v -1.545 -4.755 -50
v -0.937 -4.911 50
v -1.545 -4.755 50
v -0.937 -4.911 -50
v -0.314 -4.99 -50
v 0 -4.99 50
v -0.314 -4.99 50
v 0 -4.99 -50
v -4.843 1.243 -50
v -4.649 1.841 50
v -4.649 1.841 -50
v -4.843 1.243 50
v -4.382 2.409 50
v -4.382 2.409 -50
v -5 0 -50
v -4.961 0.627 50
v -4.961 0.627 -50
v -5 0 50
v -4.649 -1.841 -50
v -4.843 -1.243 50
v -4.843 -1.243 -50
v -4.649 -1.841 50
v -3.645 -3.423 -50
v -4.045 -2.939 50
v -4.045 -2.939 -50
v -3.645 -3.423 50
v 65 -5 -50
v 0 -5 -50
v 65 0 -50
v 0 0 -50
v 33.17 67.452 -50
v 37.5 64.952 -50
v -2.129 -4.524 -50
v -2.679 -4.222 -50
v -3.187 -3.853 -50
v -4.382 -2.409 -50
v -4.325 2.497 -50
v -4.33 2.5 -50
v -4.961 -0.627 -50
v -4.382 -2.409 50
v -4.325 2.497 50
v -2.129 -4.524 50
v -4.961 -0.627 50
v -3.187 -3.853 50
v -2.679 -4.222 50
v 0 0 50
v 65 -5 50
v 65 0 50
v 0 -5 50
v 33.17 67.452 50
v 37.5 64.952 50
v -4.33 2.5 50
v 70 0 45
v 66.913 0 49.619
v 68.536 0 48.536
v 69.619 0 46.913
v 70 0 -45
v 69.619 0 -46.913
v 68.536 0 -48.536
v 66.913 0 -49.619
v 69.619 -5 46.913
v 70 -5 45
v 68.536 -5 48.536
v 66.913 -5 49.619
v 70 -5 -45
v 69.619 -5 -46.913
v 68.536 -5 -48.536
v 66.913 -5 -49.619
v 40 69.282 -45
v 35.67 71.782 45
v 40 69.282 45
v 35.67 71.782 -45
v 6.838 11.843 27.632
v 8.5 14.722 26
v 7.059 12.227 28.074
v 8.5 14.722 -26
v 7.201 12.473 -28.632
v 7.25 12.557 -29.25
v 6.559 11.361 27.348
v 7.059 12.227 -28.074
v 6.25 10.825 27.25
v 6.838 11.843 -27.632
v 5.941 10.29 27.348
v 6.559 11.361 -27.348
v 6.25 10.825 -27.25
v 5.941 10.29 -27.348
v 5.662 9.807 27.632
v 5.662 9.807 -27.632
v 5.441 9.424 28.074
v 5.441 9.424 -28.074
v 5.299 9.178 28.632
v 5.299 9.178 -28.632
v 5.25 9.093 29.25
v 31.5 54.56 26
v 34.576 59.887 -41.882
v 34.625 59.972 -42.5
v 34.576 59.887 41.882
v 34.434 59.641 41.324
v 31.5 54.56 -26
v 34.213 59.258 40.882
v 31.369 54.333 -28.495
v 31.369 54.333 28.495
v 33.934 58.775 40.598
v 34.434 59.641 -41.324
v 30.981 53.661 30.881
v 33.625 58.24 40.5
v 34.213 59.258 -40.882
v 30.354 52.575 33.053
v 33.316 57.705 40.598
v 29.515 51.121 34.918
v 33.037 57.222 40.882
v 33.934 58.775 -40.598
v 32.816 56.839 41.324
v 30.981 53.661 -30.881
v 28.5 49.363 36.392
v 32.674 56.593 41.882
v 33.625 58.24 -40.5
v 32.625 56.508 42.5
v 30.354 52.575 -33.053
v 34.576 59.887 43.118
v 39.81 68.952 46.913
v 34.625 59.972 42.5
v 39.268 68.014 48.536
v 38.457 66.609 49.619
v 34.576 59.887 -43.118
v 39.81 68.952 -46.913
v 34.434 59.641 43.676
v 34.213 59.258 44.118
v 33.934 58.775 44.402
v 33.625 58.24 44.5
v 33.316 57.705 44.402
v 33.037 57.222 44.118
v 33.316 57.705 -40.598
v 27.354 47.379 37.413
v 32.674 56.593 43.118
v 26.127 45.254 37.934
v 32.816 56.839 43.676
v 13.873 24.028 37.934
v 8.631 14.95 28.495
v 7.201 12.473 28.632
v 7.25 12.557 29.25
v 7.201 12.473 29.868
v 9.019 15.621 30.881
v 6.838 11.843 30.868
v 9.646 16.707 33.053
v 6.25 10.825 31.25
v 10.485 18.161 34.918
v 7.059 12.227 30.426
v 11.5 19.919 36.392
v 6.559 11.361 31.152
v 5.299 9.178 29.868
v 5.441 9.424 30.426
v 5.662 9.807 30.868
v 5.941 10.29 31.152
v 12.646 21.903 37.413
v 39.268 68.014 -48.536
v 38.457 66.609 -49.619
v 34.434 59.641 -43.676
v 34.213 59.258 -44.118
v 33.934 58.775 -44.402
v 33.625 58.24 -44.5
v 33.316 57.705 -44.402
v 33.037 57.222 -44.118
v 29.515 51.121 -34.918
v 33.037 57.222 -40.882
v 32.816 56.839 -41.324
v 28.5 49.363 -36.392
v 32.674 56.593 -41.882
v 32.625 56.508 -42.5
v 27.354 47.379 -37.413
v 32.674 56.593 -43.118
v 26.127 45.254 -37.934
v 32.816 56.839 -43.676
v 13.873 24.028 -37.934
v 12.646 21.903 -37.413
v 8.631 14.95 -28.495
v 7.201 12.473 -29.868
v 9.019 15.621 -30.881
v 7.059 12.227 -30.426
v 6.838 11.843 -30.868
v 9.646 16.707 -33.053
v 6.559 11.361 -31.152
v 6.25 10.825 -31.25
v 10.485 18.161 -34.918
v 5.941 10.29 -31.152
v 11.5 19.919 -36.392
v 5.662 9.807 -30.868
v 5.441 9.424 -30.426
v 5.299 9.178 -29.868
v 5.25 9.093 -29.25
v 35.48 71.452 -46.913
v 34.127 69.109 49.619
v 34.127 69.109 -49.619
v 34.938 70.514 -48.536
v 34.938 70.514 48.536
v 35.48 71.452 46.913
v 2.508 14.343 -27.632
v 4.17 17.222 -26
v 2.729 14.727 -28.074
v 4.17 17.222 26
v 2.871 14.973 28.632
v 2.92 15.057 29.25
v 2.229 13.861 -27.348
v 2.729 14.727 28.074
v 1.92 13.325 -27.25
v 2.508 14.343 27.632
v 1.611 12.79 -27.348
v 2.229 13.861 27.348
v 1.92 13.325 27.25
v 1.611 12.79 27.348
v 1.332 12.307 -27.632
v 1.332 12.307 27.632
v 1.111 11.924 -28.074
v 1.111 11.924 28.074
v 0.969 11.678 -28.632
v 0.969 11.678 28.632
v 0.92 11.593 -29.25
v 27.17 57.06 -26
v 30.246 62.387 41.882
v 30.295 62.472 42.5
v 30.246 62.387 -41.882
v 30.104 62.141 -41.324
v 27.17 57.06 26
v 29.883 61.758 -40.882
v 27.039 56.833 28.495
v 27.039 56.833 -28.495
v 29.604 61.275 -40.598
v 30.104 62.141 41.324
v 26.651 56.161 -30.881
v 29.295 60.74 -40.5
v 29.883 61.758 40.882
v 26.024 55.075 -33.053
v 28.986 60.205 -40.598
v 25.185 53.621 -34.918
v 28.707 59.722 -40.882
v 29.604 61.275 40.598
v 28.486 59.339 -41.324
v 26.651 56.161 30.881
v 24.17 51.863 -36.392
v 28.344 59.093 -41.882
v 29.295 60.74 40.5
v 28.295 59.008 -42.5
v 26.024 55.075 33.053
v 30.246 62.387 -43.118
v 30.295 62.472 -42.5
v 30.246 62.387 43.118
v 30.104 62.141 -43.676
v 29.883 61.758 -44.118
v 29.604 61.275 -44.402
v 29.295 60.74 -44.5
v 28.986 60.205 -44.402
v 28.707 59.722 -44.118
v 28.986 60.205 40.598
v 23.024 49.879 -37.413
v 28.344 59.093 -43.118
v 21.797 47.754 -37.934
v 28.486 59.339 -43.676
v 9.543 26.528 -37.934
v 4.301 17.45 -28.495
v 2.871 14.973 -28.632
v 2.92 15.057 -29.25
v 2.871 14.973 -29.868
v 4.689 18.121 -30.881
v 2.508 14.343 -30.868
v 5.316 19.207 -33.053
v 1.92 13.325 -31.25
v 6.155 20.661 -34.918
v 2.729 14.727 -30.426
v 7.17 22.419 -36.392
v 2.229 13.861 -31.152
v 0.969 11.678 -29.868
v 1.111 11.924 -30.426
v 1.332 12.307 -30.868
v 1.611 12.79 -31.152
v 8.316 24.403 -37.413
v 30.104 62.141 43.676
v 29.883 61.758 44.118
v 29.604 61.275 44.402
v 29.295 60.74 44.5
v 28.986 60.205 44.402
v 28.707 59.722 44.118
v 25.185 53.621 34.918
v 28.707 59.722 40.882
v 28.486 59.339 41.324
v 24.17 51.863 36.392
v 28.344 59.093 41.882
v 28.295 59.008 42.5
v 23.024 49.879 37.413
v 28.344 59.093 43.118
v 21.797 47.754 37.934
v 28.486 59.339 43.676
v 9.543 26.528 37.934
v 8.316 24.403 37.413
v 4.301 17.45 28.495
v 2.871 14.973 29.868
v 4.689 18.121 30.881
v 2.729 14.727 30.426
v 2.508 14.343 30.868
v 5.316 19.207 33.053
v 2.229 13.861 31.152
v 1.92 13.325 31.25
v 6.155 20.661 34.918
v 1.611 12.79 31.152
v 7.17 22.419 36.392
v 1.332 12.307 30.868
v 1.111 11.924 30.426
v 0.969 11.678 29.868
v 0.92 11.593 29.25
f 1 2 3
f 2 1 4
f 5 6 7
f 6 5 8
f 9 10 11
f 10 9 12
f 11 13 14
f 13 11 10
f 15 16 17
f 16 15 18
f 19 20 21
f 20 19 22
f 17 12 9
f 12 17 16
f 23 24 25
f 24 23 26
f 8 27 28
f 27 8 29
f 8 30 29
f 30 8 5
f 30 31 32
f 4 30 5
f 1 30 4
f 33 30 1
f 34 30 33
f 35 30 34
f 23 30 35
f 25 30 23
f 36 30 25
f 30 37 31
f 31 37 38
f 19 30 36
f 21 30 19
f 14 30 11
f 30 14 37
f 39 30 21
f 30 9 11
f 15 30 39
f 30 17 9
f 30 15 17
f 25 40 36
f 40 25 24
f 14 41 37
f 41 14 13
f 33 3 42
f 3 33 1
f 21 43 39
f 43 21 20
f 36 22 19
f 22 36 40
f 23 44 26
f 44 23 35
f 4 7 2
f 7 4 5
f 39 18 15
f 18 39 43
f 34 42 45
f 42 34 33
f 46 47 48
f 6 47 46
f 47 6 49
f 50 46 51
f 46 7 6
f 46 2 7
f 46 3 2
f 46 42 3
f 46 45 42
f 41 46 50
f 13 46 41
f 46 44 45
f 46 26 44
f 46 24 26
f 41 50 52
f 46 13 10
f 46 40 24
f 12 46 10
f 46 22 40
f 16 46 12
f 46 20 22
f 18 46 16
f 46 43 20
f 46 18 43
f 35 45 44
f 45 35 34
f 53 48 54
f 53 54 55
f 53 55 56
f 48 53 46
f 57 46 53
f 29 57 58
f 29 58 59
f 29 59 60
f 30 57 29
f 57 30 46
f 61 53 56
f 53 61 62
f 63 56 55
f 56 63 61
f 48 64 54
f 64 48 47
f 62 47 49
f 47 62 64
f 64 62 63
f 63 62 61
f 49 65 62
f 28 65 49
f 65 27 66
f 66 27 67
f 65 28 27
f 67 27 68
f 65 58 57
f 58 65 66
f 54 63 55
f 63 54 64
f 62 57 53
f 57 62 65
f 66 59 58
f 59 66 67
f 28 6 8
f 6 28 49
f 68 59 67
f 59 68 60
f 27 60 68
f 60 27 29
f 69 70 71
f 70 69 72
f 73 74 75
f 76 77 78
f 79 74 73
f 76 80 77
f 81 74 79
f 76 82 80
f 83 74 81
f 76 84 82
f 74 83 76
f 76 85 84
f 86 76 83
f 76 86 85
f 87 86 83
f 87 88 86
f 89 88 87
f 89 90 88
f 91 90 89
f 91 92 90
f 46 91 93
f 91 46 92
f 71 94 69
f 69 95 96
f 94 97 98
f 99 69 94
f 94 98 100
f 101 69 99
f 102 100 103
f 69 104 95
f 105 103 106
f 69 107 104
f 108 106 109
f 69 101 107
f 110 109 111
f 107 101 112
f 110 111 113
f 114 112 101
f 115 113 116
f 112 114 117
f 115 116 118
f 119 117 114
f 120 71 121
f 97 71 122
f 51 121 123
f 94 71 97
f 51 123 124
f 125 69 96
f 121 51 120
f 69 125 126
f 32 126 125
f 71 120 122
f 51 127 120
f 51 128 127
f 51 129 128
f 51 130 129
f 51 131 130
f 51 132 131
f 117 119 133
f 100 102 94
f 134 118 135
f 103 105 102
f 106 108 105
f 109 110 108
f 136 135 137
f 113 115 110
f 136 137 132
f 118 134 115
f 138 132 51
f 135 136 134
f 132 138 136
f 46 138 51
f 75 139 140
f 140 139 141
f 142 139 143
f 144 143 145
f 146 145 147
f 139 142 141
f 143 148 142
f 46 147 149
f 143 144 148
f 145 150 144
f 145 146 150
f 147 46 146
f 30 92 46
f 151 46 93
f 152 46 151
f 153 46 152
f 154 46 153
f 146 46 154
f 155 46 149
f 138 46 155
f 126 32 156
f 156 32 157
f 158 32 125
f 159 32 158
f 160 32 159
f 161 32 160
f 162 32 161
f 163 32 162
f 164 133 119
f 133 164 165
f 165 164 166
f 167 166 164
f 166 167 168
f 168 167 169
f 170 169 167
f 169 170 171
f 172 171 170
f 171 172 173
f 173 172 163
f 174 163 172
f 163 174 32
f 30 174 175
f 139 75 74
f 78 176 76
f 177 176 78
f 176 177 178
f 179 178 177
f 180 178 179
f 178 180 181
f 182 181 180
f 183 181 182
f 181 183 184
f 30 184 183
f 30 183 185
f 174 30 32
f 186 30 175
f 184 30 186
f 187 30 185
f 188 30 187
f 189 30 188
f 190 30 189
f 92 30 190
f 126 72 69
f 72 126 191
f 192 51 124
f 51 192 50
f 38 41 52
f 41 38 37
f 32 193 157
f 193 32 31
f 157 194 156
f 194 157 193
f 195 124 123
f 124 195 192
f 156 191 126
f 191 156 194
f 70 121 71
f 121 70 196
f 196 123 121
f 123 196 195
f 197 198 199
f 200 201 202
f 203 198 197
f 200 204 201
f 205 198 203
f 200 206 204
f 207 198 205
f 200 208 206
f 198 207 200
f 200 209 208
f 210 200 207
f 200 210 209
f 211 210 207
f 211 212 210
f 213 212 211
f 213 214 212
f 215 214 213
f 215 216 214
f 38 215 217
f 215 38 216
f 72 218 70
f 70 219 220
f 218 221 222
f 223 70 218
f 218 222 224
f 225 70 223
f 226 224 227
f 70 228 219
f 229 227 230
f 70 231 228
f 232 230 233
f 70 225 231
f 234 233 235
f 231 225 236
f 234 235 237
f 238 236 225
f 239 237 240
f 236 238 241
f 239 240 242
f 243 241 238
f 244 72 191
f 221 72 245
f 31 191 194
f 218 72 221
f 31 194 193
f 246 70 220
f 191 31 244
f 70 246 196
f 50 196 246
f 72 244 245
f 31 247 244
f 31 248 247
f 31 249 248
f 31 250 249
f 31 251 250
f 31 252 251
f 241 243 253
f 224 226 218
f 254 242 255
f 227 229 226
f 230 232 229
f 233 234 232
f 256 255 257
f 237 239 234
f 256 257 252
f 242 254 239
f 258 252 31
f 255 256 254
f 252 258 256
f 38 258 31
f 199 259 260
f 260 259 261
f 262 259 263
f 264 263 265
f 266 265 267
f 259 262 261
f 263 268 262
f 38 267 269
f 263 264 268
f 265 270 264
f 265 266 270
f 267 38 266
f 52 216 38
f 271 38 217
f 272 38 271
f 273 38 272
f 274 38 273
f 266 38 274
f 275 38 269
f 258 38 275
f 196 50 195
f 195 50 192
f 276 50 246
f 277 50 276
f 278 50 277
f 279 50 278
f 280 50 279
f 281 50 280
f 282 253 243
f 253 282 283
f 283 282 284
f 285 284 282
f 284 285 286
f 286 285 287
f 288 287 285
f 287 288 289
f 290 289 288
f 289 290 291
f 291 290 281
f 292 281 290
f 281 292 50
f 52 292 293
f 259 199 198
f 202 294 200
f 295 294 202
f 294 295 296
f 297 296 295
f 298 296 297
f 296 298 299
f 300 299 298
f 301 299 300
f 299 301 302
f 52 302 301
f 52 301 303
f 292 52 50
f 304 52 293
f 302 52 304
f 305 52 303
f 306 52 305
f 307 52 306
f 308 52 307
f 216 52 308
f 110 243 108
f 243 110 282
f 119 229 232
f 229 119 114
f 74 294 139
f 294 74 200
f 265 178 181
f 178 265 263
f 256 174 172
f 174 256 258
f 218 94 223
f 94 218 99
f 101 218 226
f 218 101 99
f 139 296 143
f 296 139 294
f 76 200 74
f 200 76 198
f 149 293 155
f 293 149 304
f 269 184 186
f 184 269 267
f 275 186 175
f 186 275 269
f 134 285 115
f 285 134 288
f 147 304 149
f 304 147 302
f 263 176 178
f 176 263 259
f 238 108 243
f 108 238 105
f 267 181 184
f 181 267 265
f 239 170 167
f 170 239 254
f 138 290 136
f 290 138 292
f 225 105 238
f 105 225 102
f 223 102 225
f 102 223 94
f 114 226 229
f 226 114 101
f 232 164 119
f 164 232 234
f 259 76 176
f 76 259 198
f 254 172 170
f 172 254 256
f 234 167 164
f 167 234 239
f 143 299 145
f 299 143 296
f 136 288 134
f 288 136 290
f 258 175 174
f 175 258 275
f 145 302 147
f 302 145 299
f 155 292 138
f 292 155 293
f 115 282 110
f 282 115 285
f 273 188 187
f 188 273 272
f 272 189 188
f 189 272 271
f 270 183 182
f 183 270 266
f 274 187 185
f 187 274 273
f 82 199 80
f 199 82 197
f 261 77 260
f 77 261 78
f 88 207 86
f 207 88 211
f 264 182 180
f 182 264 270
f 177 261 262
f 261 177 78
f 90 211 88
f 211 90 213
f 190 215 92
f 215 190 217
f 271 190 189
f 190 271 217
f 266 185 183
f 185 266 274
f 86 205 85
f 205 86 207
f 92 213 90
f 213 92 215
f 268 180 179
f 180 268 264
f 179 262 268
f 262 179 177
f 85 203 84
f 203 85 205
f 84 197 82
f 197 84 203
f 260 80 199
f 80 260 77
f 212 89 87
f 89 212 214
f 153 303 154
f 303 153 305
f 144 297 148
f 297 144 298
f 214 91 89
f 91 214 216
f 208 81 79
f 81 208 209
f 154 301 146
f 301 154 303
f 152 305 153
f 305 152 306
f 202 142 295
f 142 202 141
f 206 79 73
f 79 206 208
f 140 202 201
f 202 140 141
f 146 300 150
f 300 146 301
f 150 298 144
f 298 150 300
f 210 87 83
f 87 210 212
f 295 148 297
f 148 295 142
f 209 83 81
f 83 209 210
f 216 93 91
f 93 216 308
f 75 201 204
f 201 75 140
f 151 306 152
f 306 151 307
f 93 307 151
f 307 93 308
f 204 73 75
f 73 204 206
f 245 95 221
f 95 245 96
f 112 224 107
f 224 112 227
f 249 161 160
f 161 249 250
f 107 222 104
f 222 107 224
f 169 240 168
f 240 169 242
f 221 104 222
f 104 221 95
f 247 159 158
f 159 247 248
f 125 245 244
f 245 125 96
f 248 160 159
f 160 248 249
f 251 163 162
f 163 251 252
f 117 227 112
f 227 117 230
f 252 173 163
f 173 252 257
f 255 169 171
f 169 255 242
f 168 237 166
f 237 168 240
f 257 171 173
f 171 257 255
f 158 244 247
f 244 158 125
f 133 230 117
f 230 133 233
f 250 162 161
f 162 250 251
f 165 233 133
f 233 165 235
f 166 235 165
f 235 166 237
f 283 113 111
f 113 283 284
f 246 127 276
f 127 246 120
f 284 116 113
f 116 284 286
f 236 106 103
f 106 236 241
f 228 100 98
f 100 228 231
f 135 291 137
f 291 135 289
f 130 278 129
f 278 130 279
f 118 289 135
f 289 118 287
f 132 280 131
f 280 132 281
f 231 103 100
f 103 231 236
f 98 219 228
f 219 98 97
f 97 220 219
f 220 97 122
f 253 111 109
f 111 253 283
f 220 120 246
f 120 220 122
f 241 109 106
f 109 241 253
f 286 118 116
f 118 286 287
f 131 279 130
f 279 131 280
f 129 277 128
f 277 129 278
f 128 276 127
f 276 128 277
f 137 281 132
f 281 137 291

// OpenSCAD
board_width=91;
board_height=61;
board_depth=6;
board_roundness=4;

width=100;
bend_radius=5;
top_length=80;
base_length=70;

module screw_hole() {
  rotate([90, 90, 0]) {
    cylinder(d=4, h=20, center=true, $fn=20);
  }
}


module plate(length, depth, width, roundness, flat_bottom=true) {
  minkowski() {
    cube([length - roundness * 2,
          depth - 1,
          width - roundness * 2],
         center=true);
    rotate([90, 0, 0]) { cylinder(h=1, r=roundness, center=true); }
  }
  if(flat_bottom) {
    translate([-roundness / 2, 0, 0]) {
      cube([length - roundness, depth, width], center=true);
    }
  }
}

module top() {
  difference() {
    plate(top_length, bend_radius, width, bend_radius);
    plate(board_height - 15,
          bend_radius * 2,
          board_width - 15,
          board_roundness * 3, false);
    translate([-27.5, -3.0, -29.25]) { screw_hole(); }
    translate([-27.5, -3.0,  29.25]) { screw_hole(); }
    translate([ 27.25, -3.0, -42.5]) { screw_hole(); }
    translate([ 27.25, -3.0,  42.5]) { screw_hole(); }
  }
}

difference() {
  cylinder(h=width, r=bend_radius, center=true, $fn=50);
  translate([bend_radius / 2, bend_radius / 2, 0]) {
    cube([bend_radius, bend_radius, width * 2], center=true);
  }
}

translate([base_length / 2, -bend_radius / 2, 0]) {
  plate(base_length, bend_radius, width, bend_radius);
}

rotate([0, 0, 60]) {
  translate([top_length / 2, bend_radius / 2, 0]) {
    top();
  }
}
